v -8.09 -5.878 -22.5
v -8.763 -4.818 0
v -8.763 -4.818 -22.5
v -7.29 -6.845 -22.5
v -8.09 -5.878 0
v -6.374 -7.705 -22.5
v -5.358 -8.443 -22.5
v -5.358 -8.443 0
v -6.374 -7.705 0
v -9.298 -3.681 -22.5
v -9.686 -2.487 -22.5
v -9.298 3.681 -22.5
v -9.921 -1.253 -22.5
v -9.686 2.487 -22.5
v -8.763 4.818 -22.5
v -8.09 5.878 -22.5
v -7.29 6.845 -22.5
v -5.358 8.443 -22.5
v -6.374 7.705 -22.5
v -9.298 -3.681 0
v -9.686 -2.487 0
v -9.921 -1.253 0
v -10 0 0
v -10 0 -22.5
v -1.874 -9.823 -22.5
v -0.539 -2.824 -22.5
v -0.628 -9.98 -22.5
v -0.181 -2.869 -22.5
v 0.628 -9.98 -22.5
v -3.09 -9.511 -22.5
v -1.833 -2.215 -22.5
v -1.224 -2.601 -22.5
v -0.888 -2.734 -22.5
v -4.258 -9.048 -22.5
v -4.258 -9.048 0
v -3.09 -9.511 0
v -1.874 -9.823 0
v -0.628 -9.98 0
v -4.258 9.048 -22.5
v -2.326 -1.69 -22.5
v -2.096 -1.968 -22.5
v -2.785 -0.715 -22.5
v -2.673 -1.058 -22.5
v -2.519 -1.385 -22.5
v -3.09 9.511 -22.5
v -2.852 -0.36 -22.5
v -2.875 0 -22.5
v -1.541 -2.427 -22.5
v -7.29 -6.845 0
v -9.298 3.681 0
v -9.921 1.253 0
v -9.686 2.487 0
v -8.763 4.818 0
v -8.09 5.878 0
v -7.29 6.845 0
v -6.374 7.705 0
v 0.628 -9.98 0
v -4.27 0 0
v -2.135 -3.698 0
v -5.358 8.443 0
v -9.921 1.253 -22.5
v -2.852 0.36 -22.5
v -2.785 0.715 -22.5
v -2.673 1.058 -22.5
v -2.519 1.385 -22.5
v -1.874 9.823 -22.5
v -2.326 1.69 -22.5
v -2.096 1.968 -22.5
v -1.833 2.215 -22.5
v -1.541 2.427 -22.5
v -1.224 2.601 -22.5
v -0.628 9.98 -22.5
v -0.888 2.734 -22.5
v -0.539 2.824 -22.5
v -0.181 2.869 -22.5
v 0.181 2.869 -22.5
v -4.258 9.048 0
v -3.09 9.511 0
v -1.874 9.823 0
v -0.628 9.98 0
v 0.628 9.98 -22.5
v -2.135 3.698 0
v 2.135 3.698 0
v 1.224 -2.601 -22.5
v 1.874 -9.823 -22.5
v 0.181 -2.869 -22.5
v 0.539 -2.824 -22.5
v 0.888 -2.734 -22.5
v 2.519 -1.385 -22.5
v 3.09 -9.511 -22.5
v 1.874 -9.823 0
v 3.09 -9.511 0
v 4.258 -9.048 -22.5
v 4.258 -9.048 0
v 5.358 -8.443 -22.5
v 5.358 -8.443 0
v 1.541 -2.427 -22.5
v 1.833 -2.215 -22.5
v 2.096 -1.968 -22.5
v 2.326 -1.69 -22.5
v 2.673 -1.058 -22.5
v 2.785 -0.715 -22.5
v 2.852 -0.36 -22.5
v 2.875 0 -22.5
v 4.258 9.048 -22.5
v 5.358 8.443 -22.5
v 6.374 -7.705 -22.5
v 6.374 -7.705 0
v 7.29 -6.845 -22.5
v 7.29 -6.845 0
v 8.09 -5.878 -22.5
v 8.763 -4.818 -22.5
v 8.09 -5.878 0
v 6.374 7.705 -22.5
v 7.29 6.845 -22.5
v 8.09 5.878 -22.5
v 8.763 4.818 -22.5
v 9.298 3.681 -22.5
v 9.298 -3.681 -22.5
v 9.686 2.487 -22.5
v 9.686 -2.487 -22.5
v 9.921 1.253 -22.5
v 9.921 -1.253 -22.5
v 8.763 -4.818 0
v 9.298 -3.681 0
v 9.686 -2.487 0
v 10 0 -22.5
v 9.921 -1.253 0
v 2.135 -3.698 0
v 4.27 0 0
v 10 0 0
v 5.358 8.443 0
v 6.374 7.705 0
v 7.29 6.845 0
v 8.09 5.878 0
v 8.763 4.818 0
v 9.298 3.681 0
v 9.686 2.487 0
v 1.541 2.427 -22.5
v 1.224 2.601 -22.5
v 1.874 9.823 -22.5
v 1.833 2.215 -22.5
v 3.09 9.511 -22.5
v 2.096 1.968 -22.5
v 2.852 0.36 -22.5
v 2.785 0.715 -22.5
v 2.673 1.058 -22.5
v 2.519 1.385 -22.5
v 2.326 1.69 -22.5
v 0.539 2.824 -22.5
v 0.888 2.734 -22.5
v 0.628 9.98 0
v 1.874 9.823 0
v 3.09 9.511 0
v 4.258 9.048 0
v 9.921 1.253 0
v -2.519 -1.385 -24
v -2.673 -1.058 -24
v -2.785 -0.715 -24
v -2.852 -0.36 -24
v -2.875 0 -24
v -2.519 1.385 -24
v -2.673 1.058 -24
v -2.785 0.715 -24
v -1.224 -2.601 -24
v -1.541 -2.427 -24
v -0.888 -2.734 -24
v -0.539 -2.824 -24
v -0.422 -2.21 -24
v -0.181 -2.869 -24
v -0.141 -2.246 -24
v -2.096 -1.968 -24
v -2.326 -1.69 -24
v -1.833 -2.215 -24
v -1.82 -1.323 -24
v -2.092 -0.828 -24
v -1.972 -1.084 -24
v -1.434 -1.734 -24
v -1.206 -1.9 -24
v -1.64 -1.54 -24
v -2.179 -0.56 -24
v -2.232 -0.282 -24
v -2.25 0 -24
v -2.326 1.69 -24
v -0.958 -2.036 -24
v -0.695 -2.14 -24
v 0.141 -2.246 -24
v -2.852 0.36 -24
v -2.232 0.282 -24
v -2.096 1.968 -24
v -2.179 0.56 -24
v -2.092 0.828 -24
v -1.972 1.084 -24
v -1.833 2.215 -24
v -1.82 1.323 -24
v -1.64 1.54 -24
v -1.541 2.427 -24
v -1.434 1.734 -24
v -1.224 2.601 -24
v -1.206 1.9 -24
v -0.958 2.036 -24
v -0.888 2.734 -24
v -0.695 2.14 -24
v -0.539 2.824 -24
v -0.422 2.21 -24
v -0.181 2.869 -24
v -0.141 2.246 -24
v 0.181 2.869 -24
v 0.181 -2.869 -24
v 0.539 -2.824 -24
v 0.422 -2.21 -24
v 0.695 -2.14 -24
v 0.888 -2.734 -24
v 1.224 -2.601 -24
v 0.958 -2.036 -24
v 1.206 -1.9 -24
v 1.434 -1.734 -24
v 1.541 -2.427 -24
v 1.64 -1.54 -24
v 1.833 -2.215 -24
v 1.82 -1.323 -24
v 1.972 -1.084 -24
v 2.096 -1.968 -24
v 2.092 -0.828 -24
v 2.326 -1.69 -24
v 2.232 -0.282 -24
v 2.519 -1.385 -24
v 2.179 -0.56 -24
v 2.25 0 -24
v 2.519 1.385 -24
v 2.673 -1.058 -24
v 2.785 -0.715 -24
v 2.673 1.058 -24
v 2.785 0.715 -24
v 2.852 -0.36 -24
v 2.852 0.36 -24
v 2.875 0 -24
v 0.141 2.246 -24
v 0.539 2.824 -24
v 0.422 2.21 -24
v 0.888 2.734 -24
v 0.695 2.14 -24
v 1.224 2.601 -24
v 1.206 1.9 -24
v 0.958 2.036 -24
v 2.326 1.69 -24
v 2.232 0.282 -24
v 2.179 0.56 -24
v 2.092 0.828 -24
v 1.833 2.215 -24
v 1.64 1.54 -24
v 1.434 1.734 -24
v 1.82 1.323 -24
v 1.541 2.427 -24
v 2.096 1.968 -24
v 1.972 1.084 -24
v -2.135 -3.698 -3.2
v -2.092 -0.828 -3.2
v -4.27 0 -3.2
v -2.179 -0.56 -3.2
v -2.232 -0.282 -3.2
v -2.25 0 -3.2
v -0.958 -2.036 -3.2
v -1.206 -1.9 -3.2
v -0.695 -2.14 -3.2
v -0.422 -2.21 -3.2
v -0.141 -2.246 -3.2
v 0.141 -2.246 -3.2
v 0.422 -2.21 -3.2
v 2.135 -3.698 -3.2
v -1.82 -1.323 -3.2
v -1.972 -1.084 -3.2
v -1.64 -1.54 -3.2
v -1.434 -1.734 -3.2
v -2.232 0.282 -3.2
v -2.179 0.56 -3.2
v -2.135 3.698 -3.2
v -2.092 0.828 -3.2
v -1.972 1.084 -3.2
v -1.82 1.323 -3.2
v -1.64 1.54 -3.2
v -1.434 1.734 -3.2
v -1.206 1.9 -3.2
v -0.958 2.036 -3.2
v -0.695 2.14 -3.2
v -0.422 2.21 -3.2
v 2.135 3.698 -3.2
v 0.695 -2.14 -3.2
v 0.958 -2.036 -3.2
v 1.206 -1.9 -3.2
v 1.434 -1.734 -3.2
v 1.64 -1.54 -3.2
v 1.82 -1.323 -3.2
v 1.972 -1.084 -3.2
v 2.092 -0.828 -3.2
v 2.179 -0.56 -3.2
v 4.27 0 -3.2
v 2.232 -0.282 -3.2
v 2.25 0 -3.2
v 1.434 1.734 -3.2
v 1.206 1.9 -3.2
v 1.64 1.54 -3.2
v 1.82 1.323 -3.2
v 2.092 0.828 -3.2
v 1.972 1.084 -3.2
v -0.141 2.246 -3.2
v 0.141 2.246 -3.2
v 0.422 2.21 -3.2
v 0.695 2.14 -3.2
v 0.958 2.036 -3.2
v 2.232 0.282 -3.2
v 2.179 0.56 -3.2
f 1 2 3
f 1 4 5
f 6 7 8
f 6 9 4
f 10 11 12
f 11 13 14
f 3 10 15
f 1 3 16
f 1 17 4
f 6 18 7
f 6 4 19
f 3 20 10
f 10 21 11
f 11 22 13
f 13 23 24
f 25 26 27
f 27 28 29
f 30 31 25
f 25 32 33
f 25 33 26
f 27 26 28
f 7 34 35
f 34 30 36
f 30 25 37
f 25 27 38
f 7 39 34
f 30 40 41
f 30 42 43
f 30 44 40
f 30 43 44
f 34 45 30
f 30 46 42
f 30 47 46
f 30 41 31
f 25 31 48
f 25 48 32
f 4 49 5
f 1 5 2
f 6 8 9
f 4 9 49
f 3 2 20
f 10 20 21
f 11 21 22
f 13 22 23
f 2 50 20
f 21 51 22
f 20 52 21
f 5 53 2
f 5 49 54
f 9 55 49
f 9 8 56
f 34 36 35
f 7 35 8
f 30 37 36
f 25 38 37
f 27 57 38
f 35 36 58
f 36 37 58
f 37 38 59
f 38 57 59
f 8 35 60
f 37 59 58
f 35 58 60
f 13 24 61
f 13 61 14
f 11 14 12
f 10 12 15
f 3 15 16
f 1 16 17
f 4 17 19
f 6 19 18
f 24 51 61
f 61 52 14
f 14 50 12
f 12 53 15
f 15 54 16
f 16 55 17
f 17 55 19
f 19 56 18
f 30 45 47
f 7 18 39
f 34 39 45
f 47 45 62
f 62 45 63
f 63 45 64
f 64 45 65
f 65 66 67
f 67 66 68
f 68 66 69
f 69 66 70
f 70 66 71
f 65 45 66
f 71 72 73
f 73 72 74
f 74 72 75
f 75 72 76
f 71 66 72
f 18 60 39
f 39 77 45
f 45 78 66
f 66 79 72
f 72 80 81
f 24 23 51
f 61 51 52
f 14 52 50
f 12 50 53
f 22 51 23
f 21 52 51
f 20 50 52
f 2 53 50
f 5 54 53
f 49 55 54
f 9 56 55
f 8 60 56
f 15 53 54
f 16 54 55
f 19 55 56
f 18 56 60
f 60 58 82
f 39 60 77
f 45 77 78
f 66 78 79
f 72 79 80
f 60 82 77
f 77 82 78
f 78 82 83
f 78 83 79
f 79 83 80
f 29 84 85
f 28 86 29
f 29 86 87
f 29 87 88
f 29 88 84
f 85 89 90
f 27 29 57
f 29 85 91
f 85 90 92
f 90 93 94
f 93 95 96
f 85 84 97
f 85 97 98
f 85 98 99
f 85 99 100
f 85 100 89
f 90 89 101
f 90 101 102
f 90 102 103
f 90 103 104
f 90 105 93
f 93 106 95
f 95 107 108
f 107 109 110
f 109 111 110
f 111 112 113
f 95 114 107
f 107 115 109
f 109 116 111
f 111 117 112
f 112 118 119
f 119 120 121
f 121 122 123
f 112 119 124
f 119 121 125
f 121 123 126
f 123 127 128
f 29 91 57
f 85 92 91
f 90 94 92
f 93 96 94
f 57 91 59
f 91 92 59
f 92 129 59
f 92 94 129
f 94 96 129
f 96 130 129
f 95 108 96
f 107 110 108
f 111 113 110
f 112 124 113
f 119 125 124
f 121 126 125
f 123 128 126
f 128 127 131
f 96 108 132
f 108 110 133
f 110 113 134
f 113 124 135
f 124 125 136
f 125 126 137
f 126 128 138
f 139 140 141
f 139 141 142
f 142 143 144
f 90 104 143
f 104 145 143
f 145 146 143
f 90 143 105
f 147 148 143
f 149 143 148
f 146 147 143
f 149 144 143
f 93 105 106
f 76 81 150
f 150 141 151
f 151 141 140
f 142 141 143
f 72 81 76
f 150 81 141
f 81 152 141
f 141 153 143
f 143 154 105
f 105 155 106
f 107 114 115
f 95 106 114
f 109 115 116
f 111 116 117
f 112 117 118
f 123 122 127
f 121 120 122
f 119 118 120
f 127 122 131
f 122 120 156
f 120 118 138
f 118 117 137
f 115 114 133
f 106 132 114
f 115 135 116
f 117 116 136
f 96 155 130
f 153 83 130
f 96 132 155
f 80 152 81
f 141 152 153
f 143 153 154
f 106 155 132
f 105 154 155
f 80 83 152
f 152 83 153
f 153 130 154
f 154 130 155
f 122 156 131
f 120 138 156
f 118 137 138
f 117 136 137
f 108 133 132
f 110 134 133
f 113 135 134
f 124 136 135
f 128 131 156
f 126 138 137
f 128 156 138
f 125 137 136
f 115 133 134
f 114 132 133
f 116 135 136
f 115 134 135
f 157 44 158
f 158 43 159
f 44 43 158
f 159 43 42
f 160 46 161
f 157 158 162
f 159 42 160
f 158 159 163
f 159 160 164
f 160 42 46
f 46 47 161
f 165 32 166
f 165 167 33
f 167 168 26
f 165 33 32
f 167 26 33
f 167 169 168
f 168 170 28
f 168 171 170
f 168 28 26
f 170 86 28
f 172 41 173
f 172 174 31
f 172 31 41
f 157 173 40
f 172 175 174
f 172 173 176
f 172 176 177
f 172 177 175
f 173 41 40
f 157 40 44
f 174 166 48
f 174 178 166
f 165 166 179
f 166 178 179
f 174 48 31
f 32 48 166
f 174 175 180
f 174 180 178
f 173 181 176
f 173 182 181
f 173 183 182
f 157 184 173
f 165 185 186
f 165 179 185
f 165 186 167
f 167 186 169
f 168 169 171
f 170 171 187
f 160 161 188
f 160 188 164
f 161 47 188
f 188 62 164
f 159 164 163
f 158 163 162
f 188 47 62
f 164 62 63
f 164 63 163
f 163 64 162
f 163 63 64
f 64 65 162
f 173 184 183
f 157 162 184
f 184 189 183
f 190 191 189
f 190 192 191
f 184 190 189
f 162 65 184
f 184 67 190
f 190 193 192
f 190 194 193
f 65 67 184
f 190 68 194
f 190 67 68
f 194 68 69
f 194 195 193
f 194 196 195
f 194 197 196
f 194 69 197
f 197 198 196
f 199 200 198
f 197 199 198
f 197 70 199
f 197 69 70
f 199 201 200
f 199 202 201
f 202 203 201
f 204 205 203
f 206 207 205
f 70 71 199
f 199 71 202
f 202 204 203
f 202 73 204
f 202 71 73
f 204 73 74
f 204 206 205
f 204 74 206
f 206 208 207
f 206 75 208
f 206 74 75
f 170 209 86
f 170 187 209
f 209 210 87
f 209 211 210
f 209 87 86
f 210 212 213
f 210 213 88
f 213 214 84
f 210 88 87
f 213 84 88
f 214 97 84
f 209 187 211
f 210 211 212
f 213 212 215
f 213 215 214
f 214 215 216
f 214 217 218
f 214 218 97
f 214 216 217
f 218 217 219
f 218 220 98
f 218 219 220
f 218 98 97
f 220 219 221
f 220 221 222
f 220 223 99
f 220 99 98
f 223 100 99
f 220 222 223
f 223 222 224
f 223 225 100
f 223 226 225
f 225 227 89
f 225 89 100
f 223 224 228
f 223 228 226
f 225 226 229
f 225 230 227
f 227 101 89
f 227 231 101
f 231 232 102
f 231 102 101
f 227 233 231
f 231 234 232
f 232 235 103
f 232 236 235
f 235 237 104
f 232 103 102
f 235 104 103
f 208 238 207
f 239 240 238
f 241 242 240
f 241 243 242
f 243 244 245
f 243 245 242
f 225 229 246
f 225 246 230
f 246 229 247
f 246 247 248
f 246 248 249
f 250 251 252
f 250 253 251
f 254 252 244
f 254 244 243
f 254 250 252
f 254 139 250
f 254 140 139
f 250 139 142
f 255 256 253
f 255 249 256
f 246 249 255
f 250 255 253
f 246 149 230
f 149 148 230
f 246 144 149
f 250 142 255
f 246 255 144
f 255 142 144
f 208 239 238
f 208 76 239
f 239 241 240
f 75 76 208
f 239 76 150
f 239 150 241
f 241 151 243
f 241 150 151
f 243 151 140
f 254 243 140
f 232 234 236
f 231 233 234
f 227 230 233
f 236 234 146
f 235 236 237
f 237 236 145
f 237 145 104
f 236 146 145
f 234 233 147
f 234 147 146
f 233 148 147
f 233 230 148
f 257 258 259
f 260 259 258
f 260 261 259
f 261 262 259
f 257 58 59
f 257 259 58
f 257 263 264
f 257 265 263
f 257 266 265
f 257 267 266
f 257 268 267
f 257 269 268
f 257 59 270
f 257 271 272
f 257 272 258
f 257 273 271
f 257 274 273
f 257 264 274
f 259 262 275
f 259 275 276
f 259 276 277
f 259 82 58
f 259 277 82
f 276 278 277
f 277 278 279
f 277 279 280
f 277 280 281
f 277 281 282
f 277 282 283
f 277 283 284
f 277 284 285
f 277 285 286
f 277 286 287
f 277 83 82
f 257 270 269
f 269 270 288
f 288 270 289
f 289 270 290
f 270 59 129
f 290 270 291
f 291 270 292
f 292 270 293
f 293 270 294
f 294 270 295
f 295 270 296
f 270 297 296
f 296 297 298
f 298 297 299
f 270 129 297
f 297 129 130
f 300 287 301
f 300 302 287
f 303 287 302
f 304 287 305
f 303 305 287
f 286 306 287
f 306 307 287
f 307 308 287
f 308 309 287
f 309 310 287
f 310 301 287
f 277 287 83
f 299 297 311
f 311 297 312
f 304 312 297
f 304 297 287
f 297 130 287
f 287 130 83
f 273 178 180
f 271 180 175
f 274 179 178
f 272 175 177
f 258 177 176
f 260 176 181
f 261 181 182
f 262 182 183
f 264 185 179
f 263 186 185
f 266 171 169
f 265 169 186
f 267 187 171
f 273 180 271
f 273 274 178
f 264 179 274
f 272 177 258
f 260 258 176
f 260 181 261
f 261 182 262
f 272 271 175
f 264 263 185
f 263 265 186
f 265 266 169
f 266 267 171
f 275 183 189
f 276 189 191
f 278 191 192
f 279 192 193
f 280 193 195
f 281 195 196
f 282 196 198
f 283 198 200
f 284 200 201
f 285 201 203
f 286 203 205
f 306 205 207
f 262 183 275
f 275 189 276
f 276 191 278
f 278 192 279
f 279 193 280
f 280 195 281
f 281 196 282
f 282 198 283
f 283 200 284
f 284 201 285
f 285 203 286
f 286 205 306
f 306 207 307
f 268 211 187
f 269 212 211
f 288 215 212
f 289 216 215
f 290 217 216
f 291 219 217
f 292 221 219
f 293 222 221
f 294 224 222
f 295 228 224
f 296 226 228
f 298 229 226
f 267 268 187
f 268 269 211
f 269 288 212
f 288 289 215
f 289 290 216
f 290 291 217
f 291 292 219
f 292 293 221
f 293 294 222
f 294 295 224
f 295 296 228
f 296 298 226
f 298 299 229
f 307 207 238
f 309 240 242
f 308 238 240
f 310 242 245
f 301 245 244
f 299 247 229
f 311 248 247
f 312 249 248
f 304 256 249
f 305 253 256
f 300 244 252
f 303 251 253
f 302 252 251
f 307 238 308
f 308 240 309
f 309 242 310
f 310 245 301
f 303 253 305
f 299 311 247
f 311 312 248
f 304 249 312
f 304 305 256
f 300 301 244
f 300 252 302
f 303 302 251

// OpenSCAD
$fn = 50;

difference() {
	union() {
		translate(v = [0, 0, -22.5]) {
			cylinder(h = 22.5, r = 10.0);
		}
		#translate(v = [0, 0, -24.0]) {
			cylinder(h = 24, r = 2.875);
		}
	}
	union() {
		translate(v = [0, 0, 0]) {
			rotate(a = [0, 0, 0]) {
				difference() {
					union() {
						translate(v = [0, 0, -3.2]) {
							linear_extrude(height = 3.2) {
								polygon(points = [[4.2698, 0.0], [2.1349000000000005, 3.697755269078796], [-2.134899999999999, 3.6977552690787965], [-4.2698, 5.228996902999369e-16], [-2.134900000000002, -3.6977552690787956], [2.1348999999999974, -3.697755269078798]]);
							}
						}
					}
					union();
				}
			}
		}
		#translate(v = [0, 0, -100.0]) {
			cylinder(h = 200, r = 2.25);
		}
	}
}
